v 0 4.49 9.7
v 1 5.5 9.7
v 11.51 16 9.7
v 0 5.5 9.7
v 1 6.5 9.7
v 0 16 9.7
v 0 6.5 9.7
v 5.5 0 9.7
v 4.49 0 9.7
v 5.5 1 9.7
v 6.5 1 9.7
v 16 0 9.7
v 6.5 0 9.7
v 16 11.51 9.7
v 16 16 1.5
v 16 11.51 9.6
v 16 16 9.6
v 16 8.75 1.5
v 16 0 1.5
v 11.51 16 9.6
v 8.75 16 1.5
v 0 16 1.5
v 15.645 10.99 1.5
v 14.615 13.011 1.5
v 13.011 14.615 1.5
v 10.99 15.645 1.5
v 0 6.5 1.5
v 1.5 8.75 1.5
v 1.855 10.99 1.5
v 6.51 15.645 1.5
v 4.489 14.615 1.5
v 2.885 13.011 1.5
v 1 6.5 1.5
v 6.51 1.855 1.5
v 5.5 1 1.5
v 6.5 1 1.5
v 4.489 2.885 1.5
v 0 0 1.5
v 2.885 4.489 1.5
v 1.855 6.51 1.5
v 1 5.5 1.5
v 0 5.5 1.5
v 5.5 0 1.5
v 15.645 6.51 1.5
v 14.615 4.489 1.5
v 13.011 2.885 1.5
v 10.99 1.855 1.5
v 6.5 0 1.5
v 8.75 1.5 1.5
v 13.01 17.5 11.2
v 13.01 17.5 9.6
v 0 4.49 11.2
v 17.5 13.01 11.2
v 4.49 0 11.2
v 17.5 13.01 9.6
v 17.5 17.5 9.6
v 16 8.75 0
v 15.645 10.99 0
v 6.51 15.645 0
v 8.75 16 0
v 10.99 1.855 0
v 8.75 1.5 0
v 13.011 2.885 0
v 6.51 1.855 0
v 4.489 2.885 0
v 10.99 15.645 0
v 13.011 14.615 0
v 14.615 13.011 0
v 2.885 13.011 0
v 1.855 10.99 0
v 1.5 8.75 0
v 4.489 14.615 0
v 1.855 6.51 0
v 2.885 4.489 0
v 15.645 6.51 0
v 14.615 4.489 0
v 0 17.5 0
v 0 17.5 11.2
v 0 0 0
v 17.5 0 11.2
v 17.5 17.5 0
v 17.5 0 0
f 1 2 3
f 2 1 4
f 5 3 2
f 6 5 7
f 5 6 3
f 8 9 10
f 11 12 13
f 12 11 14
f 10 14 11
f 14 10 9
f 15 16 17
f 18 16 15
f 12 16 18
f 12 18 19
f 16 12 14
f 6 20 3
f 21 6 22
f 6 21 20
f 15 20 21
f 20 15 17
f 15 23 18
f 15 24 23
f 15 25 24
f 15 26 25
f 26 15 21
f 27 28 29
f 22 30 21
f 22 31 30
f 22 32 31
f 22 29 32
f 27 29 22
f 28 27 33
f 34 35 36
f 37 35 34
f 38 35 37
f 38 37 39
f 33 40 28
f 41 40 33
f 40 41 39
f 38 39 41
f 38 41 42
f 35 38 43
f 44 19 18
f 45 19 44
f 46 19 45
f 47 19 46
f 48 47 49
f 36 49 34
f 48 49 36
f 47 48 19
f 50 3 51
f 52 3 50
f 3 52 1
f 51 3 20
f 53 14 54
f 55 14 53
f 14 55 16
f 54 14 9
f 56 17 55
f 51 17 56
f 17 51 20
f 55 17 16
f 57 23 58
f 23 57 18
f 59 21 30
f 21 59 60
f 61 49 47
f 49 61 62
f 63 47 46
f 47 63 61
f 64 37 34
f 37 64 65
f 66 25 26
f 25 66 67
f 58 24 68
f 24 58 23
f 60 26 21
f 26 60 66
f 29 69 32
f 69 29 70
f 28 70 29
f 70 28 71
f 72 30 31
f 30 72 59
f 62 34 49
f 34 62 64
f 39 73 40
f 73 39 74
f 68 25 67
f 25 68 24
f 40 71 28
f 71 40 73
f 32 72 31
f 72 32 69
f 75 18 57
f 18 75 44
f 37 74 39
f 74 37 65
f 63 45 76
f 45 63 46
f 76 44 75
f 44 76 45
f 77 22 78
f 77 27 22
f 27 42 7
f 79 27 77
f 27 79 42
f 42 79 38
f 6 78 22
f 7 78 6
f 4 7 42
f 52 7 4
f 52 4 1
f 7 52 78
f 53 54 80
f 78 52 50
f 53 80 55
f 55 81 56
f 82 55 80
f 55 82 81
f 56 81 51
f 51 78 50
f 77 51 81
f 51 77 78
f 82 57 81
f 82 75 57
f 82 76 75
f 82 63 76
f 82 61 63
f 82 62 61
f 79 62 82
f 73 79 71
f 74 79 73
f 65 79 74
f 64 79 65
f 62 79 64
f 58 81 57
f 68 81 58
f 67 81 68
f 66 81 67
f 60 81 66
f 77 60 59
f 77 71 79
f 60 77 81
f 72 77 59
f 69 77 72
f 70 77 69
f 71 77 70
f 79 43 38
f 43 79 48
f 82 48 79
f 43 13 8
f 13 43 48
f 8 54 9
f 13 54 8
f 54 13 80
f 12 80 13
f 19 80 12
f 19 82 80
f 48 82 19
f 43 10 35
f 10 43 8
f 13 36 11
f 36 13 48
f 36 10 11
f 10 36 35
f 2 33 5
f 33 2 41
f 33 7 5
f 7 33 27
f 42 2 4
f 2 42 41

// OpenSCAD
// 15 mm
// 8 mm 
// 7 mm opening
// 1.5 mm thick

/*
difference() {
    cube([15,15,1.5]);
    
    translate([-epsilon,-epsilon,-epsilon]) cube([7+epsilon,7+epsilon,1.5+2*epsilon]);
}

translate([7,0,0]) cube([8,1.5,11.1]);

translate([1.5,7,0]) rotate([0,0,90]) cube([8,1.5,11.1]);
*/

$fn=20;
margin = 0.2;

washer_dia = 14.2+0.3;
thickness = 1.5;

width = washer_dia+2*thickness;
mirror_bed_thickness = 8;
height = mirror_bed_thickness+2*thickness+margin; // 11.1
edge_wall = 8;
screw_width = 6.35; // really 6.25
epsilon = 0.1;

difference() {
    cube([width,width,height]);
    
    union() {
        // remove center
        translate([-epsilon,-epsilon,thickness]) cube([width-thickness+epsilon,width-thickness+epsilon,height-2*thickness]);
    
        // remove corner edge
        //translate([edge_wall,edge_wall,-epsilon]) cube([width-edge_wall+epsilon, width-edge_wall+epsilon, height+2*epsilon]);
        
        // slot in the top
        rotate([0,0,-45]) translate([-screw_width/2,0,height-thickness-epsilon]) cube([screw_width, 30, thickness+2*epsilon]); 
        
        // iron ring
        translate([washer_dia/2+thickness,washer_dia/2+thickness,-epsilon]) cylinder(d=washer_dia, h=thickness+2*epsilon);

    }
}

// support
translate([5.5,0,0]) cube([1,1,height]);
translate([0,5.5,0]) cube([1,1,height]);
